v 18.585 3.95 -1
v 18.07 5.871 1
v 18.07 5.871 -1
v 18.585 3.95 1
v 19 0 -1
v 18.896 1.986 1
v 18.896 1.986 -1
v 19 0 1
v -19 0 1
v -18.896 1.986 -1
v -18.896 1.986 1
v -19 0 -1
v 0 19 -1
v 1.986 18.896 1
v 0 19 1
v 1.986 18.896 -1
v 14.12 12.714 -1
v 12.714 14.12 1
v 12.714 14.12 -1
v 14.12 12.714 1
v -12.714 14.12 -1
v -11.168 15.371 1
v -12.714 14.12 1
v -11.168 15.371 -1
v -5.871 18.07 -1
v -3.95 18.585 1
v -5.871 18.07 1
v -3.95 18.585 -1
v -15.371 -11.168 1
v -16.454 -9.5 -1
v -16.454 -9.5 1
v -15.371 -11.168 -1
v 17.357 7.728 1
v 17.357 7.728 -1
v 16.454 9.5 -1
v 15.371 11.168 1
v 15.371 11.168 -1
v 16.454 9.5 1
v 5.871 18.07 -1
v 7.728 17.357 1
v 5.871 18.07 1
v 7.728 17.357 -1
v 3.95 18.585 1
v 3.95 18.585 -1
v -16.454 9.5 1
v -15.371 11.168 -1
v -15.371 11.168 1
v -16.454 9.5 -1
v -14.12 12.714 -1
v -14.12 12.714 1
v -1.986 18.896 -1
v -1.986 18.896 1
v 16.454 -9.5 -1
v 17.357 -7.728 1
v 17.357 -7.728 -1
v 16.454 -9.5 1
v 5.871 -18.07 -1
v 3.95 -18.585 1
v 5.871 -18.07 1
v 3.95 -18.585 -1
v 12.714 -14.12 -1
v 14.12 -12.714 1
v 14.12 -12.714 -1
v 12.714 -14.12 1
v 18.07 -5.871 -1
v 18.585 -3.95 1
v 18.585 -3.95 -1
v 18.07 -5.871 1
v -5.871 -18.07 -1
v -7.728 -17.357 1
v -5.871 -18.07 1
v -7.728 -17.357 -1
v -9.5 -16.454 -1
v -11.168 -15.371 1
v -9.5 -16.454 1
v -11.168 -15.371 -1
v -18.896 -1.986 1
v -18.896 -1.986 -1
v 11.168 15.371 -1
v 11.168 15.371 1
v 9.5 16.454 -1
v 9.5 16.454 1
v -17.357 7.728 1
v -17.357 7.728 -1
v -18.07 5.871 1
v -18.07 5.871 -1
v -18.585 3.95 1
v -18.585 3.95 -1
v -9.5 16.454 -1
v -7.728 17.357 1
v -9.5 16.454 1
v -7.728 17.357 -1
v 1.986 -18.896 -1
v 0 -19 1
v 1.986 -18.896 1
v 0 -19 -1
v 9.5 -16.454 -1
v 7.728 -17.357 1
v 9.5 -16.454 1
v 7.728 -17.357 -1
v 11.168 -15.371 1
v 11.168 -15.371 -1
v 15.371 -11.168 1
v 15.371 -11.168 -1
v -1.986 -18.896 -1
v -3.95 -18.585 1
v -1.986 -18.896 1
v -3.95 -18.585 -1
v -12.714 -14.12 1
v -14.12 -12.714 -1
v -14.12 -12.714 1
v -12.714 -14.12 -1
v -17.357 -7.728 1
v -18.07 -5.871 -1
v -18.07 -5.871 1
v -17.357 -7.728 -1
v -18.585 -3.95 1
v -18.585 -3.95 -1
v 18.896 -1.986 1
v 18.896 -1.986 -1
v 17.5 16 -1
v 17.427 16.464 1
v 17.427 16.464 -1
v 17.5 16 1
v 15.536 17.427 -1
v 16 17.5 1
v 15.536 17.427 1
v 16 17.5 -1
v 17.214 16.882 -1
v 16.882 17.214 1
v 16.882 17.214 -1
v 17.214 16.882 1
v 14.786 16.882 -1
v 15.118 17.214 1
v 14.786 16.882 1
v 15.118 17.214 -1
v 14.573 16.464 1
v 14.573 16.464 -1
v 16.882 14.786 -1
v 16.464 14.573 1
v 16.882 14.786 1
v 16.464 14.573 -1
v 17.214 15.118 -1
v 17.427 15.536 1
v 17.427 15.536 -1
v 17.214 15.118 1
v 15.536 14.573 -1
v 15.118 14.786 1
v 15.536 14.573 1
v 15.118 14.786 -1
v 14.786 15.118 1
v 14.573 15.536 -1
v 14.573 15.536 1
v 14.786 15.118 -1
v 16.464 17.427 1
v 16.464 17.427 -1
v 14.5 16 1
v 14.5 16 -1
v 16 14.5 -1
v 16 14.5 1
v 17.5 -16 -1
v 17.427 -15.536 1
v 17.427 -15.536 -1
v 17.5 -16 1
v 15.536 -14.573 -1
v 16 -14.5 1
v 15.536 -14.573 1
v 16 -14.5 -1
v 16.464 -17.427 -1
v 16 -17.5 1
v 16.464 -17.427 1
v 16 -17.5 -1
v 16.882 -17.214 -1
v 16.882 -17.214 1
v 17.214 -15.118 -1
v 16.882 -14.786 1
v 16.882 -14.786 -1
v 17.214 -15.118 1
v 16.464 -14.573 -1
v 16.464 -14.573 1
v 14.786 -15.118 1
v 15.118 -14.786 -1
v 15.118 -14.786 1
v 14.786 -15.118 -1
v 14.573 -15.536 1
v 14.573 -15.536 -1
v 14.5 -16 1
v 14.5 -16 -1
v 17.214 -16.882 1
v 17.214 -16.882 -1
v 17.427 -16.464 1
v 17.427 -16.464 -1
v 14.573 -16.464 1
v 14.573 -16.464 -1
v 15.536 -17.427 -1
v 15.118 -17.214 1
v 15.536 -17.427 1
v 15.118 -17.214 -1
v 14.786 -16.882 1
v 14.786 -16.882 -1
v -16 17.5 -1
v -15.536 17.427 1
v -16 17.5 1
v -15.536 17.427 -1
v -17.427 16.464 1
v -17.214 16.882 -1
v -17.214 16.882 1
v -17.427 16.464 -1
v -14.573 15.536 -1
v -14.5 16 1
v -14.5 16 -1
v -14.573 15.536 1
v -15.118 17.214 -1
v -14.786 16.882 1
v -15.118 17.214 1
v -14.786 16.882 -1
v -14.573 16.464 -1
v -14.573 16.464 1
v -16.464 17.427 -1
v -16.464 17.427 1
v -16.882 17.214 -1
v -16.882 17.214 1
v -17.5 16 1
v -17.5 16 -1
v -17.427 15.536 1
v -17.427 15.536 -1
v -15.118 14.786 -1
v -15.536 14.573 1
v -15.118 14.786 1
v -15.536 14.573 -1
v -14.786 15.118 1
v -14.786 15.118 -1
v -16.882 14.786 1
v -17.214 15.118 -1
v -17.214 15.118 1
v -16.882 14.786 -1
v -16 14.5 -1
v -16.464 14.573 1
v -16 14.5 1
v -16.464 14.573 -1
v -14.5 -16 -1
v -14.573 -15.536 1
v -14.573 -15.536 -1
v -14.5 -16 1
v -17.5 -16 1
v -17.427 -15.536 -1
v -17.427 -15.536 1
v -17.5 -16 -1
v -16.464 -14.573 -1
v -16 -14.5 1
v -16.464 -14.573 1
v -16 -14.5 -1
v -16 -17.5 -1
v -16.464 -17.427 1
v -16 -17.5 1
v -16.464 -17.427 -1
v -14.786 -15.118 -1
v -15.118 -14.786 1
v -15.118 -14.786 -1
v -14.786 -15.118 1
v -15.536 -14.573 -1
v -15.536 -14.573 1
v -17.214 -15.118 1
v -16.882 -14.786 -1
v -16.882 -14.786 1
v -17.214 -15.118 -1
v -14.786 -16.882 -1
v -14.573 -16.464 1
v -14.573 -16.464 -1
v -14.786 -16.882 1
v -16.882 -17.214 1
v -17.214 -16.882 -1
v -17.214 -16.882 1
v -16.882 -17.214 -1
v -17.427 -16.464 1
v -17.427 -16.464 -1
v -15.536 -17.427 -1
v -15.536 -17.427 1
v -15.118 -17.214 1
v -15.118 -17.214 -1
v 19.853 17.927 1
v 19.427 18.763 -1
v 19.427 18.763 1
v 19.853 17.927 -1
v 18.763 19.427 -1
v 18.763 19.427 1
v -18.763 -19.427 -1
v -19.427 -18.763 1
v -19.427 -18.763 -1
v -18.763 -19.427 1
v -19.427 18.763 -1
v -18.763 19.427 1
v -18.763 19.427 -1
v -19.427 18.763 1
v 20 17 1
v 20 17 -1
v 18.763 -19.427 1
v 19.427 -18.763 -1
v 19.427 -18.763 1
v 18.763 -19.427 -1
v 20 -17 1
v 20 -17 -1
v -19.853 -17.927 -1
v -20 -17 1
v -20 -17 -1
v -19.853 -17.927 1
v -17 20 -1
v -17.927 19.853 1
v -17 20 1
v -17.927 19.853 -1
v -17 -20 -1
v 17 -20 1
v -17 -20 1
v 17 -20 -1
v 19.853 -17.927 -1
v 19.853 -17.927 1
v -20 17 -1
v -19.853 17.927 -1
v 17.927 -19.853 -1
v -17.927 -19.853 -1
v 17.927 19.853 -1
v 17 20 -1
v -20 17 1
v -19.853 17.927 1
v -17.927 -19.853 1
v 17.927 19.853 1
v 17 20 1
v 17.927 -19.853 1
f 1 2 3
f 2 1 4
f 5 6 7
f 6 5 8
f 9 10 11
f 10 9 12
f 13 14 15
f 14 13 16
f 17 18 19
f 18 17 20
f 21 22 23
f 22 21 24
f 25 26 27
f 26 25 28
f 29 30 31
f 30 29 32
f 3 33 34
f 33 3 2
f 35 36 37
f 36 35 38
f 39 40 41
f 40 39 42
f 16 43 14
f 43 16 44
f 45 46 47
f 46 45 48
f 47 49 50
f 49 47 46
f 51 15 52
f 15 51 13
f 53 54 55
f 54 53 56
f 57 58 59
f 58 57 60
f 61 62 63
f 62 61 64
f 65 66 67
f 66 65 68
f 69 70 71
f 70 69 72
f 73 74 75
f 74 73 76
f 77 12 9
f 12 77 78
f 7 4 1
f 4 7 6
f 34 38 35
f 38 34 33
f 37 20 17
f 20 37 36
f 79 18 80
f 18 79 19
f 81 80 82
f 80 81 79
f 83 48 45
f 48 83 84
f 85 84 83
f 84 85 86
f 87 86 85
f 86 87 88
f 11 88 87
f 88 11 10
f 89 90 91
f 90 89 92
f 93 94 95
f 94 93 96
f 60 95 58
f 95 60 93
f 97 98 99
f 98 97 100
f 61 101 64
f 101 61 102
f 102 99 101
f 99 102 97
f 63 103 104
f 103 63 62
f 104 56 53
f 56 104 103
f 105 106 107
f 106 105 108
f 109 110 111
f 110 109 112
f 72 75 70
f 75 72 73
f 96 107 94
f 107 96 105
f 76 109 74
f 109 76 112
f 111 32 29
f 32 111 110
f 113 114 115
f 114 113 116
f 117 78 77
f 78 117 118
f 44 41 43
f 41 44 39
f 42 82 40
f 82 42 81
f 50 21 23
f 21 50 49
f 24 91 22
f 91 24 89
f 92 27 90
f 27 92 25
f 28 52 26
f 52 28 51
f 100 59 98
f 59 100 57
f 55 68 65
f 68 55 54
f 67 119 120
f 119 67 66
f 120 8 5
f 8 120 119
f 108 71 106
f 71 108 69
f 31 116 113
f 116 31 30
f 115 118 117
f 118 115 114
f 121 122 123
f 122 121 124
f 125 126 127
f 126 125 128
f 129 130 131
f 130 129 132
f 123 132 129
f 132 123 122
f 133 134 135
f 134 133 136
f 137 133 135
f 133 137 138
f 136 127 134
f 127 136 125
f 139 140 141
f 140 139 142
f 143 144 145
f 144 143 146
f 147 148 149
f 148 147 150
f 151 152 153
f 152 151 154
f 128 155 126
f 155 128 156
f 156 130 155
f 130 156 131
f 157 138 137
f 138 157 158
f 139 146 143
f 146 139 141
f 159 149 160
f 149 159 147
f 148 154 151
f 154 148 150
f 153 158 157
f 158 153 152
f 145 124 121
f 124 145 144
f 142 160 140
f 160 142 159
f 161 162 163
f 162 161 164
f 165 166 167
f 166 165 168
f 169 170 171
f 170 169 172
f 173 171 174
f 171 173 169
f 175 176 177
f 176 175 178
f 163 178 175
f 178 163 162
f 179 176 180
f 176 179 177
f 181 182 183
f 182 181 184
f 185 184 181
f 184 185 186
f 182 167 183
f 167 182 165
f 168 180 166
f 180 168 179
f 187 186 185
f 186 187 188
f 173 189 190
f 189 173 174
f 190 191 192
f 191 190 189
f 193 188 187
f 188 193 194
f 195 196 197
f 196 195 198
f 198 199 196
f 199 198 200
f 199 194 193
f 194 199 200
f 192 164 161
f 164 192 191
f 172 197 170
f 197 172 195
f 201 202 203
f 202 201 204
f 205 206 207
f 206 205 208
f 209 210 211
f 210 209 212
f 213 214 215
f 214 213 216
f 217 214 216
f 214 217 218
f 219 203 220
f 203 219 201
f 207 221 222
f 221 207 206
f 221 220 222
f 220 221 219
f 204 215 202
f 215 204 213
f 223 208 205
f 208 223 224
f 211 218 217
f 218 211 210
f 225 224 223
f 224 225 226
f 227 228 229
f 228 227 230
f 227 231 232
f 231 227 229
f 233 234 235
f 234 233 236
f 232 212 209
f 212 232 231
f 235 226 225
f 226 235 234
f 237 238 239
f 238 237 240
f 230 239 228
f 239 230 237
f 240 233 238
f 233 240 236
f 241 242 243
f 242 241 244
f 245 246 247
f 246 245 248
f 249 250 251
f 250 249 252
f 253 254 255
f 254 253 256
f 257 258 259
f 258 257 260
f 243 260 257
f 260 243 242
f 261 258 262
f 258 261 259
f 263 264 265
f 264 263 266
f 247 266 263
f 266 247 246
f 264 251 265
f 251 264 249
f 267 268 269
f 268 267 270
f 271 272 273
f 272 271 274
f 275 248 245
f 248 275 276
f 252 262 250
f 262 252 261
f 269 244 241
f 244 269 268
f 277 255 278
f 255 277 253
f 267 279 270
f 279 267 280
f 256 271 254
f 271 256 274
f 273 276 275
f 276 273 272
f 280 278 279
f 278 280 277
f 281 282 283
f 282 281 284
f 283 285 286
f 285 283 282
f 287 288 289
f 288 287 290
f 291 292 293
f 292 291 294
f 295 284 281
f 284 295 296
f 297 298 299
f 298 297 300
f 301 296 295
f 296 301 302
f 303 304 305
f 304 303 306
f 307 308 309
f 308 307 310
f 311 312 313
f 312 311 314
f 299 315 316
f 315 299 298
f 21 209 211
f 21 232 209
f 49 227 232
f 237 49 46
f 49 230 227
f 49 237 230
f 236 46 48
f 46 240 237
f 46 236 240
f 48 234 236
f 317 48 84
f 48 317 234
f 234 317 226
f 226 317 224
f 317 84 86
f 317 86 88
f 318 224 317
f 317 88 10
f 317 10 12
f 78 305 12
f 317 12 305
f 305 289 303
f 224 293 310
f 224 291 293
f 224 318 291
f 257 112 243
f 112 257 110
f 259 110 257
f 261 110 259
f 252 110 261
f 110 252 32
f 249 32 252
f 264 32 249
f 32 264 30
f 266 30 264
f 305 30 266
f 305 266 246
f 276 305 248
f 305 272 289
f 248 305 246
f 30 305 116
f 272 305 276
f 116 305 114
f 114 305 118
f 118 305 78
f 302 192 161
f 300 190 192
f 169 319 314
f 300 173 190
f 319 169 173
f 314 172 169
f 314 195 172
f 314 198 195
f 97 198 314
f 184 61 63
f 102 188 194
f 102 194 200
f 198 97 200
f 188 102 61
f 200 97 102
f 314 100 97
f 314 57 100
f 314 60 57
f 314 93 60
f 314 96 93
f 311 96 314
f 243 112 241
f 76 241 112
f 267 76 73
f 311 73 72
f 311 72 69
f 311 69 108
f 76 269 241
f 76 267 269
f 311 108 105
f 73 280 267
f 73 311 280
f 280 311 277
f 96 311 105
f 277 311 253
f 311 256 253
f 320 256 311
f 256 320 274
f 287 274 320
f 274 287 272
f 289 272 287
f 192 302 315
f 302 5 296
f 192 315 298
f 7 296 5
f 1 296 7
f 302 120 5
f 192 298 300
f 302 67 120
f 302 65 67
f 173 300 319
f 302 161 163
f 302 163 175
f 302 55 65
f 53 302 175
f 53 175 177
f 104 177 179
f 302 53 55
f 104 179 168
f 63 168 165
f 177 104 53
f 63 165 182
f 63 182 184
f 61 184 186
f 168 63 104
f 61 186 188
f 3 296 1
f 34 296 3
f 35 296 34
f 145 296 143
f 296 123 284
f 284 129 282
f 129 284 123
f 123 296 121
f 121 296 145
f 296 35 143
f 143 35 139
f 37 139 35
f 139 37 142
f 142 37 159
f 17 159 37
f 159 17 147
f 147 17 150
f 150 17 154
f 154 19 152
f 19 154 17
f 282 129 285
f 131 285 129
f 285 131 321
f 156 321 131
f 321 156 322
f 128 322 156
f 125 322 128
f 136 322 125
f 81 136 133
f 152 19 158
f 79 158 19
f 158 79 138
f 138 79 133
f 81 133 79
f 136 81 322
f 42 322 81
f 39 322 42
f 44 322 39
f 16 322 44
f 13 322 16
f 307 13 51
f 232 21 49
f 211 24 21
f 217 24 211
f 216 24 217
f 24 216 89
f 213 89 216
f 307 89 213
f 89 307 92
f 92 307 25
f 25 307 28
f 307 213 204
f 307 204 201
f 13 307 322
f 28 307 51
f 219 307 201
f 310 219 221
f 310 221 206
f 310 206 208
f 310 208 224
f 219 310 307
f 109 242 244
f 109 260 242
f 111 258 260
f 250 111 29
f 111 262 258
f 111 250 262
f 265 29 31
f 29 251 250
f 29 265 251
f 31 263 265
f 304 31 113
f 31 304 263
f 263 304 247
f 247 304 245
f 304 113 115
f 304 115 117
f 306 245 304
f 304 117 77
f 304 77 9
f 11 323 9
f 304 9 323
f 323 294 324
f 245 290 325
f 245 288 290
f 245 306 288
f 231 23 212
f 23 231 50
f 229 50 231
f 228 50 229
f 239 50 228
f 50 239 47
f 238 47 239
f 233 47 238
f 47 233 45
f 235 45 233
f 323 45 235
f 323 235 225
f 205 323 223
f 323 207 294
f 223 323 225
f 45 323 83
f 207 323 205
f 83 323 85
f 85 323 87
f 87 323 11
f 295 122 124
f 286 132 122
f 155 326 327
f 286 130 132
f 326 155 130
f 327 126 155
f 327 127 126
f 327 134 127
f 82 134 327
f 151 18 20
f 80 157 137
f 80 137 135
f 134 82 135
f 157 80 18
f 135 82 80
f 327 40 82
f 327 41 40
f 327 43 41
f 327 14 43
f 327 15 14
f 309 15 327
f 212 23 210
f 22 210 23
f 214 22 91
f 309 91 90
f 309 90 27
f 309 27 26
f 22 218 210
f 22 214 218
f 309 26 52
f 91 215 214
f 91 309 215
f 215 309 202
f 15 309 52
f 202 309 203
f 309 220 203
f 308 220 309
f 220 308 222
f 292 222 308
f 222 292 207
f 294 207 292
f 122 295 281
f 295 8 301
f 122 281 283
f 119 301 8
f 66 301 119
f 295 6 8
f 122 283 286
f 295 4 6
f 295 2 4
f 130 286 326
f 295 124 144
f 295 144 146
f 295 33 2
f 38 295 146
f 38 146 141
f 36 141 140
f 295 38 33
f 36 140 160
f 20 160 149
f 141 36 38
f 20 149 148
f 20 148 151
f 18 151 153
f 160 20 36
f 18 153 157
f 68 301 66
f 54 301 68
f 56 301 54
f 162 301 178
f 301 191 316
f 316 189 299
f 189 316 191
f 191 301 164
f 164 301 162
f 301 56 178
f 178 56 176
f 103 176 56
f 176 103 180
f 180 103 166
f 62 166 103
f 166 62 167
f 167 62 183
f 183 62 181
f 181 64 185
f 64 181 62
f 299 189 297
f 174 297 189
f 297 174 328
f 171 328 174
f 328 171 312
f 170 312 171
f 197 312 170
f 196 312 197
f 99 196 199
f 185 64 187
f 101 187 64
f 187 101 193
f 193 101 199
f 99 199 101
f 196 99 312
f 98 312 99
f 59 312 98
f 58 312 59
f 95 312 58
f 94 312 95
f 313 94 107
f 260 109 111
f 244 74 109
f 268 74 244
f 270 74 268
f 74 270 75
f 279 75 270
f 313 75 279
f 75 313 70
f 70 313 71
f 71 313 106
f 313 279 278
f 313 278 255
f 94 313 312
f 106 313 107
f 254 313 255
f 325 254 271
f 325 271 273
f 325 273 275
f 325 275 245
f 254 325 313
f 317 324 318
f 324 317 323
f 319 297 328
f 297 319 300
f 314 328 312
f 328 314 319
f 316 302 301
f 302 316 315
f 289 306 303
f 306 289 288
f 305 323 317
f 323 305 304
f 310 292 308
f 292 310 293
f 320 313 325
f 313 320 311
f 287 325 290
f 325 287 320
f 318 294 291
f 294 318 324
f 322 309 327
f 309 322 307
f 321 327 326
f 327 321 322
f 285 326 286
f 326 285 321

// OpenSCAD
dampener_height = 2;
fan_size = 40;
fillet = 3;
screw_spacing = 32/2;
screw_diameter = 3;
center_circle = 38;

dampener();

module base_shape(){
    linear_extrude(height=dampener_height,
                   center=true,
                   convexity=10)
        minkowski(){
            square([fan_size-2*fillet,fan_size-2*fillet],center=true);
            circle(r=fillet,$fn=20);}
}

module dampener(){
    difference(){
        base_shape();
        union(){
            cylinder(d=center_circle,h=dampener_height+1,center=true,$fn=60);
            translate([screw_spacing,screw_spacing,0])
                cylinder(d=screw_diameter,h=dampener_height+1,center=true,$fn=20);
            translate([screw_spacing,-screw_spacing,0])
                cylinder(d=screw_diameter,h=dampener_height+1,center=true,$fn=20);
            translate([-screw_spacing,screw_spacing,0])
                cylinder(d=screw_diameter,h=dampener_height+1,center=true,$fn=20);
            translate([-screw_spacing,-screw_spacing,0])
                cylinder(d=screw_diameter,h=dampener_height+1,center=true,$fn=20);}}
}
